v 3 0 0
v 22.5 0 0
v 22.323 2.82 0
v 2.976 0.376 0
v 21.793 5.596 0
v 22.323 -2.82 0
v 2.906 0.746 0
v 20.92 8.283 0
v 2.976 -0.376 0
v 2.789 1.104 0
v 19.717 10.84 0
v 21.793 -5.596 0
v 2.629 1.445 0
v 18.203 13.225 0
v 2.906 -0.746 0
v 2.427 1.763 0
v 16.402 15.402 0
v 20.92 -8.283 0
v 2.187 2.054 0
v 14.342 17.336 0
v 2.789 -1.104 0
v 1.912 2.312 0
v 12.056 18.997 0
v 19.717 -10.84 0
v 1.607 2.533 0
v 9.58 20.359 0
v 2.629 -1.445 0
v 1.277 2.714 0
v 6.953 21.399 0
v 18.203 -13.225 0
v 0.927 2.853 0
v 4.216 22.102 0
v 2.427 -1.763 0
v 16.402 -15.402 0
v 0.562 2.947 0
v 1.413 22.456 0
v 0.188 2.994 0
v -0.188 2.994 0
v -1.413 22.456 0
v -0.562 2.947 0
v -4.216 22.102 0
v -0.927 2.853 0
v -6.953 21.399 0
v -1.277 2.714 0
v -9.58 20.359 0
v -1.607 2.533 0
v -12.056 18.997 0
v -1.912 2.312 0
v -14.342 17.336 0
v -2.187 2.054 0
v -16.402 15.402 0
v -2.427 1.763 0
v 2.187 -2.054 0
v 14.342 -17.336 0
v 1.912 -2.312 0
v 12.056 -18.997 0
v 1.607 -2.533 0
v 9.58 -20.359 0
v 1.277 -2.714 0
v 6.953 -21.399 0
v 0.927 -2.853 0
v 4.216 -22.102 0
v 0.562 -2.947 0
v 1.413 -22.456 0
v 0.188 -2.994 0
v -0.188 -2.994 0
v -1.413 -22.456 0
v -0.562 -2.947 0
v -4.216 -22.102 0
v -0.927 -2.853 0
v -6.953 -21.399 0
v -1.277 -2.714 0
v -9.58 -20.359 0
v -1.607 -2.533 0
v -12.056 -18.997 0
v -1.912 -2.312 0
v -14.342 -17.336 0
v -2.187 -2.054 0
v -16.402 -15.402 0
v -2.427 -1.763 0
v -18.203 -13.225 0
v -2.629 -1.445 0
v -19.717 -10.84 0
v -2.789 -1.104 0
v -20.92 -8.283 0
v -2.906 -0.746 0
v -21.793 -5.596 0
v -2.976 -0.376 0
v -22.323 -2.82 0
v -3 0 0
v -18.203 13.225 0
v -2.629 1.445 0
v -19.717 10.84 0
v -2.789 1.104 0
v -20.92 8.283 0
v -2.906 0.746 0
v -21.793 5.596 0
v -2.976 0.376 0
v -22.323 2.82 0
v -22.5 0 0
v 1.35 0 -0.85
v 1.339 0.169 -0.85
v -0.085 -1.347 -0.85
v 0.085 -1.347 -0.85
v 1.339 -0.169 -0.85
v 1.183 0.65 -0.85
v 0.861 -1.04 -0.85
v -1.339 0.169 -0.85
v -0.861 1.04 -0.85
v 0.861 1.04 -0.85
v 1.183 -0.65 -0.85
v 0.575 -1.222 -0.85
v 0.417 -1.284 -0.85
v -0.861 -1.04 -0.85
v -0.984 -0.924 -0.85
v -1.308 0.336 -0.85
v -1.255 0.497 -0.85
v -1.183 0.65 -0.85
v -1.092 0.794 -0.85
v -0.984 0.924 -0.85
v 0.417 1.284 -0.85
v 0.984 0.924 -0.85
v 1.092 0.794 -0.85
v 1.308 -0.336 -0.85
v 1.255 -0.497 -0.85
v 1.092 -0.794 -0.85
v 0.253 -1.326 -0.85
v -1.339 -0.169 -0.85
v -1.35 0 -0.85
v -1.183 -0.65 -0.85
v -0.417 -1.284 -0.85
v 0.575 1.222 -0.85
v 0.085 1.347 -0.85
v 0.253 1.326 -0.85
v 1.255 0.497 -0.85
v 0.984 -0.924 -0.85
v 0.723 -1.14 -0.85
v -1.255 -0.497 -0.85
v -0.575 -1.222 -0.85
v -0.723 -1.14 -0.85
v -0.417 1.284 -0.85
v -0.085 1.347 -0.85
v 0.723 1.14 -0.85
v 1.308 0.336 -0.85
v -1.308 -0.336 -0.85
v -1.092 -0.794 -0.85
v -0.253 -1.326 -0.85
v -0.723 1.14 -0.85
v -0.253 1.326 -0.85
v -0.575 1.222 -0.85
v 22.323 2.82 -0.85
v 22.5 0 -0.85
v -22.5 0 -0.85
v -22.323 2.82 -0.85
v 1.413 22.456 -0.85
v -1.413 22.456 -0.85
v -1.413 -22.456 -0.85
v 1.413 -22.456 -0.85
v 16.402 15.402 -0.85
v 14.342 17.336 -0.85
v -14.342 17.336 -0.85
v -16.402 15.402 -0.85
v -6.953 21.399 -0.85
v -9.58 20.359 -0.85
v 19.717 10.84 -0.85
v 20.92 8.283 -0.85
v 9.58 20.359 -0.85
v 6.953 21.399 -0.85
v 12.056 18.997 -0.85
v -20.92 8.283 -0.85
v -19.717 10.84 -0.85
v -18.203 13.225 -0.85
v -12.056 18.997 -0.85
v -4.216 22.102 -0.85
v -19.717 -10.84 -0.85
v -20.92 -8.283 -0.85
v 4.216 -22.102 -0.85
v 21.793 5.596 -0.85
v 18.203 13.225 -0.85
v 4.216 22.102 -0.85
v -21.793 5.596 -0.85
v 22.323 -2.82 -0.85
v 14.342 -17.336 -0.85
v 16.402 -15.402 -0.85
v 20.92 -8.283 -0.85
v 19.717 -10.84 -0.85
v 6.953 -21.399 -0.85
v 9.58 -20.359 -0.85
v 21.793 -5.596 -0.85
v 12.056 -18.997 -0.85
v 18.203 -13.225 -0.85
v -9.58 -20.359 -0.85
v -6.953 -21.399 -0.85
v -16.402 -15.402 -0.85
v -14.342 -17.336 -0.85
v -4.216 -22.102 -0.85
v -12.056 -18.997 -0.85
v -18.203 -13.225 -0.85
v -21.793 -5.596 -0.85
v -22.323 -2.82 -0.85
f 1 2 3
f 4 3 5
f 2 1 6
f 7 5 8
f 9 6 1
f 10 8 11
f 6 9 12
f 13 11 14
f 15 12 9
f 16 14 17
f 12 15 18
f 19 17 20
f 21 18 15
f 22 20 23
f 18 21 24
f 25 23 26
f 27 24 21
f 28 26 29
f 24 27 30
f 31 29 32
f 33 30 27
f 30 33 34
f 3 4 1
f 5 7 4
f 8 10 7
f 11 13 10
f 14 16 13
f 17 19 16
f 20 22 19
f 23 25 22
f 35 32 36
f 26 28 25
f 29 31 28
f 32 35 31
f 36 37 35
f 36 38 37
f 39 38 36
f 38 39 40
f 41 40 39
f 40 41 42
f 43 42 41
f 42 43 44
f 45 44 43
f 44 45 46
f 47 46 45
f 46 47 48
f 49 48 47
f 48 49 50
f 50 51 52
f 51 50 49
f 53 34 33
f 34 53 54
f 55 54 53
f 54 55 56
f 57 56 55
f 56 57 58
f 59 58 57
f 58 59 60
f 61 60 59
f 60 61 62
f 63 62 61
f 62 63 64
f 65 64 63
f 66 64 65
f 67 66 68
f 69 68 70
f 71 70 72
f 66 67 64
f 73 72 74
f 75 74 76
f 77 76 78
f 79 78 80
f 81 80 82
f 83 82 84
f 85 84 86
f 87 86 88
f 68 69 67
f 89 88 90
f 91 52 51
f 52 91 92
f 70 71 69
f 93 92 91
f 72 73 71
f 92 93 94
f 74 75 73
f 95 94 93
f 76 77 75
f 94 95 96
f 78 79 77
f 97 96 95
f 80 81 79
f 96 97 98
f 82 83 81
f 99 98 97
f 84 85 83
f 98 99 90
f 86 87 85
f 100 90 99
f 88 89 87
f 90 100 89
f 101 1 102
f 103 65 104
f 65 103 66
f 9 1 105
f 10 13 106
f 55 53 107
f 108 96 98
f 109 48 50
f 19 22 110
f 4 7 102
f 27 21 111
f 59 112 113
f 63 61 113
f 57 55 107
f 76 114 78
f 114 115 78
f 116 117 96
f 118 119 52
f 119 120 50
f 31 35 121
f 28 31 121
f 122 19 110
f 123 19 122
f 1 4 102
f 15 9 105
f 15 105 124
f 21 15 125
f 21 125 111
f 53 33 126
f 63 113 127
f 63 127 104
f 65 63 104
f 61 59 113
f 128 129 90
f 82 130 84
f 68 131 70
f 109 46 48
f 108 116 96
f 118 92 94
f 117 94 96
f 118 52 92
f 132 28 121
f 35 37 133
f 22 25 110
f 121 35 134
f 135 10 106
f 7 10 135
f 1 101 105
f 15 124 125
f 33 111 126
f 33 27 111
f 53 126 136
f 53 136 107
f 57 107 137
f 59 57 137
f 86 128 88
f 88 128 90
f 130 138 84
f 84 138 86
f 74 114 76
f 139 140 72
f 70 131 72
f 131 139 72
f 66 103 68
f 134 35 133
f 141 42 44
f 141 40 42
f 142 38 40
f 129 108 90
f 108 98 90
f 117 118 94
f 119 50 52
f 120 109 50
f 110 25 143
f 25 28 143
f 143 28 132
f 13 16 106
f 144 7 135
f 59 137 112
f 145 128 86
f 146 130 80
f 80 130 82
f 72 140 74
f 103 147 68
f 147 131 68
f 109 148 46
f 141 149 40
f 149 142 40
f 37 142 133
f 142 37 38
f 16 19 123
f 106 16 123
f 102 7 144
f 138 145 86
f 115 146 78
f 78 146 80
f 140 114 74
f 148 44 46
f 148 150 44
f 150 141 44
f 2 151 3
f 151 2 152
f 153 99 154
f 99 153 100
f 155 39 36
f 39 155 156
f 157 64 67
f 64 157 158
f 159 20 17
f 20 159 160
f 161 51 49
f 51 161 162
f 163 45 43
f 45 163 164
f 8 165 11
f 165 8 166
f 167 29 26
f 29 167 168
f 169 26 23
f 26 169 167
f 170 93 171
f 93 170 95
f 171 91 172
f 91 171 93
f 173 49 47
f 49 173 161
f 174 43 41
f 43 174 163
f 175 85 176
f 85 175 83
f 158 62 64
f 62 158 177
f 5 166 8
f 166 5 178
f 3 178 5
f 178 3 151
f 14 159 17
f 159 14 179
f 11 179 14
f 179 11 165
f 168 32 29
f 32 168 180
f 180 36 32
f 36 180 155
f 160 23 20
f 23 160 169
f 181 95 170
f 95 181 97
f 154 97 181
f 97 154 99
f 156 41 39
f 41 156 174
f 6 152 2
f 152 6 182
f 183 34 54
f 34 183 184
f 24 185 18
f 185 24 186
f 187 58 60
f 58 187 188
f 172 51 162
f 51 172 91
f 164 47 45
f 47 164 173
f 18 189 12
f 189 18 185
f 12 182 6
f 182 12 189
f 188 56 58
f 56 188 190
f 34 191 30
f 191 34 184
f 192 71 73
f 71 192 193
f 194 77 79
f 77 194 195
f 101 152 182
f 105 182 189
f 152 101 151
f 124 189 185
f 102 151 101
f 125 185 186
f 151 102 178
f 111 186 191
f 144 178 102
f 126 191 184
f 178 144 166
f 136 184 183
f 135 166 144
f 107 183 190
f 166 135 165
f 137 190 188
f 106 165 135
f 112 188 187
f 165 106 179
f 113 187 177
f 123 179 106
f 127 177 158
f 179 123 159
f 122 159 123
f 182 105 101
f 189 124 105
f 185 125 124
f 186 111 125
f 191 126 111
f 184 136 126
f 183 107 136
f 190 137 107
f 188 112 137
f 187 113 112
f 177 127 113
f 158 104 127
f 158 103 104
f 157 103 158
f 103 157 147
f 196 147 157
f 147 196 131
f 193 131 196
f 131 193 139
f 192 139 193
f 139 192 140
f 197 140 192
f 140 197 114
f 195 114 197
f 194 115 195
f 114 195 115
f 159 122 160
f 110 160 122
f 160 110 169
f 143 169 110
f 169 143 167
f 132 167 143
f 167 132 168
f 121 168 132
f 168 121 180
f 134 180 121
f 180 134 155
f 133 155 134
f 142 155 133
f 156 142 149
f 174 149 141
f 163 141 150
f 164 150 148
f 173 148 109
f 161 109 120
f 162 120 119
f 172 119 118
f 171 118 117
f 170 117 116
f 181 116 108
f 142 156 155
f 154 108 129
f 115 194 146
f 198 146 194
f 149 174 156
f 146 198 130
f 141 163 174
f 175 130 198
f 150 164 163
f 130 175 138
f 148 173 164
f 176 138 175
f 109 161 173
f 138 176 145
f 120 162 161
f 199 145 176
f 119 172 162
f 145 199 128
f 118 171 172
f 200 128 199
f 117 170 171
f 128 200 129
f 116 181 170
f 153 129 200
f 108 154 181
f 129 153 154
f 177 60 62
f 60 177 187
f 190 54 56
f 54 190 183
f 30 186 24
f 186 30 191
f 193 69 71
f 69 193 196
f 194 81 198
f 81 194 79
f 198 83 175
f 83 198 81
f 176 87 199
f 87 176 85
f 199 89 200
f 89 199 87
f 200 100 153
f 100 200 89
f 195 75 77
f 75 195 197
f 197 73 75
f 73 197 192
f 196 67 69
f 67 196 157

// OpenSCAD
$fn = 50;


difference() {
	union() {
		translate(v = [0, 0, -0.8500000000]) {
			cylinder(h = 0.8500000000, r = 22.5000000000);
		}
	}
	union() {
		translate(v = [0, 0, 0]) {
			rotate(a = [0, 0, 0]) {
				difference() {
					union() {
						translate(v = [0, 0, -3.8500000000]) {
							cylinder(h = 3.8500000000, r = 1.0000000000);
						}
						translate(v = [0, 0, -0.8500000000]) {
							cylinder(h = 0.8500000000, r1 = 1.3500000000, r2 = 3.0000000000);
						}
						translate(v = [0, 0, -3.8500000000]) {
							cylinder(h = 3.8500000000, r = 1.3500000000);
						}
						translate(v = [0, 0, -3.8500000000]) {
							cylinder(h = 3.8500000000, r = 1.0000000000);
						}
					}
					union();
				}
			}
		}
	}
}
